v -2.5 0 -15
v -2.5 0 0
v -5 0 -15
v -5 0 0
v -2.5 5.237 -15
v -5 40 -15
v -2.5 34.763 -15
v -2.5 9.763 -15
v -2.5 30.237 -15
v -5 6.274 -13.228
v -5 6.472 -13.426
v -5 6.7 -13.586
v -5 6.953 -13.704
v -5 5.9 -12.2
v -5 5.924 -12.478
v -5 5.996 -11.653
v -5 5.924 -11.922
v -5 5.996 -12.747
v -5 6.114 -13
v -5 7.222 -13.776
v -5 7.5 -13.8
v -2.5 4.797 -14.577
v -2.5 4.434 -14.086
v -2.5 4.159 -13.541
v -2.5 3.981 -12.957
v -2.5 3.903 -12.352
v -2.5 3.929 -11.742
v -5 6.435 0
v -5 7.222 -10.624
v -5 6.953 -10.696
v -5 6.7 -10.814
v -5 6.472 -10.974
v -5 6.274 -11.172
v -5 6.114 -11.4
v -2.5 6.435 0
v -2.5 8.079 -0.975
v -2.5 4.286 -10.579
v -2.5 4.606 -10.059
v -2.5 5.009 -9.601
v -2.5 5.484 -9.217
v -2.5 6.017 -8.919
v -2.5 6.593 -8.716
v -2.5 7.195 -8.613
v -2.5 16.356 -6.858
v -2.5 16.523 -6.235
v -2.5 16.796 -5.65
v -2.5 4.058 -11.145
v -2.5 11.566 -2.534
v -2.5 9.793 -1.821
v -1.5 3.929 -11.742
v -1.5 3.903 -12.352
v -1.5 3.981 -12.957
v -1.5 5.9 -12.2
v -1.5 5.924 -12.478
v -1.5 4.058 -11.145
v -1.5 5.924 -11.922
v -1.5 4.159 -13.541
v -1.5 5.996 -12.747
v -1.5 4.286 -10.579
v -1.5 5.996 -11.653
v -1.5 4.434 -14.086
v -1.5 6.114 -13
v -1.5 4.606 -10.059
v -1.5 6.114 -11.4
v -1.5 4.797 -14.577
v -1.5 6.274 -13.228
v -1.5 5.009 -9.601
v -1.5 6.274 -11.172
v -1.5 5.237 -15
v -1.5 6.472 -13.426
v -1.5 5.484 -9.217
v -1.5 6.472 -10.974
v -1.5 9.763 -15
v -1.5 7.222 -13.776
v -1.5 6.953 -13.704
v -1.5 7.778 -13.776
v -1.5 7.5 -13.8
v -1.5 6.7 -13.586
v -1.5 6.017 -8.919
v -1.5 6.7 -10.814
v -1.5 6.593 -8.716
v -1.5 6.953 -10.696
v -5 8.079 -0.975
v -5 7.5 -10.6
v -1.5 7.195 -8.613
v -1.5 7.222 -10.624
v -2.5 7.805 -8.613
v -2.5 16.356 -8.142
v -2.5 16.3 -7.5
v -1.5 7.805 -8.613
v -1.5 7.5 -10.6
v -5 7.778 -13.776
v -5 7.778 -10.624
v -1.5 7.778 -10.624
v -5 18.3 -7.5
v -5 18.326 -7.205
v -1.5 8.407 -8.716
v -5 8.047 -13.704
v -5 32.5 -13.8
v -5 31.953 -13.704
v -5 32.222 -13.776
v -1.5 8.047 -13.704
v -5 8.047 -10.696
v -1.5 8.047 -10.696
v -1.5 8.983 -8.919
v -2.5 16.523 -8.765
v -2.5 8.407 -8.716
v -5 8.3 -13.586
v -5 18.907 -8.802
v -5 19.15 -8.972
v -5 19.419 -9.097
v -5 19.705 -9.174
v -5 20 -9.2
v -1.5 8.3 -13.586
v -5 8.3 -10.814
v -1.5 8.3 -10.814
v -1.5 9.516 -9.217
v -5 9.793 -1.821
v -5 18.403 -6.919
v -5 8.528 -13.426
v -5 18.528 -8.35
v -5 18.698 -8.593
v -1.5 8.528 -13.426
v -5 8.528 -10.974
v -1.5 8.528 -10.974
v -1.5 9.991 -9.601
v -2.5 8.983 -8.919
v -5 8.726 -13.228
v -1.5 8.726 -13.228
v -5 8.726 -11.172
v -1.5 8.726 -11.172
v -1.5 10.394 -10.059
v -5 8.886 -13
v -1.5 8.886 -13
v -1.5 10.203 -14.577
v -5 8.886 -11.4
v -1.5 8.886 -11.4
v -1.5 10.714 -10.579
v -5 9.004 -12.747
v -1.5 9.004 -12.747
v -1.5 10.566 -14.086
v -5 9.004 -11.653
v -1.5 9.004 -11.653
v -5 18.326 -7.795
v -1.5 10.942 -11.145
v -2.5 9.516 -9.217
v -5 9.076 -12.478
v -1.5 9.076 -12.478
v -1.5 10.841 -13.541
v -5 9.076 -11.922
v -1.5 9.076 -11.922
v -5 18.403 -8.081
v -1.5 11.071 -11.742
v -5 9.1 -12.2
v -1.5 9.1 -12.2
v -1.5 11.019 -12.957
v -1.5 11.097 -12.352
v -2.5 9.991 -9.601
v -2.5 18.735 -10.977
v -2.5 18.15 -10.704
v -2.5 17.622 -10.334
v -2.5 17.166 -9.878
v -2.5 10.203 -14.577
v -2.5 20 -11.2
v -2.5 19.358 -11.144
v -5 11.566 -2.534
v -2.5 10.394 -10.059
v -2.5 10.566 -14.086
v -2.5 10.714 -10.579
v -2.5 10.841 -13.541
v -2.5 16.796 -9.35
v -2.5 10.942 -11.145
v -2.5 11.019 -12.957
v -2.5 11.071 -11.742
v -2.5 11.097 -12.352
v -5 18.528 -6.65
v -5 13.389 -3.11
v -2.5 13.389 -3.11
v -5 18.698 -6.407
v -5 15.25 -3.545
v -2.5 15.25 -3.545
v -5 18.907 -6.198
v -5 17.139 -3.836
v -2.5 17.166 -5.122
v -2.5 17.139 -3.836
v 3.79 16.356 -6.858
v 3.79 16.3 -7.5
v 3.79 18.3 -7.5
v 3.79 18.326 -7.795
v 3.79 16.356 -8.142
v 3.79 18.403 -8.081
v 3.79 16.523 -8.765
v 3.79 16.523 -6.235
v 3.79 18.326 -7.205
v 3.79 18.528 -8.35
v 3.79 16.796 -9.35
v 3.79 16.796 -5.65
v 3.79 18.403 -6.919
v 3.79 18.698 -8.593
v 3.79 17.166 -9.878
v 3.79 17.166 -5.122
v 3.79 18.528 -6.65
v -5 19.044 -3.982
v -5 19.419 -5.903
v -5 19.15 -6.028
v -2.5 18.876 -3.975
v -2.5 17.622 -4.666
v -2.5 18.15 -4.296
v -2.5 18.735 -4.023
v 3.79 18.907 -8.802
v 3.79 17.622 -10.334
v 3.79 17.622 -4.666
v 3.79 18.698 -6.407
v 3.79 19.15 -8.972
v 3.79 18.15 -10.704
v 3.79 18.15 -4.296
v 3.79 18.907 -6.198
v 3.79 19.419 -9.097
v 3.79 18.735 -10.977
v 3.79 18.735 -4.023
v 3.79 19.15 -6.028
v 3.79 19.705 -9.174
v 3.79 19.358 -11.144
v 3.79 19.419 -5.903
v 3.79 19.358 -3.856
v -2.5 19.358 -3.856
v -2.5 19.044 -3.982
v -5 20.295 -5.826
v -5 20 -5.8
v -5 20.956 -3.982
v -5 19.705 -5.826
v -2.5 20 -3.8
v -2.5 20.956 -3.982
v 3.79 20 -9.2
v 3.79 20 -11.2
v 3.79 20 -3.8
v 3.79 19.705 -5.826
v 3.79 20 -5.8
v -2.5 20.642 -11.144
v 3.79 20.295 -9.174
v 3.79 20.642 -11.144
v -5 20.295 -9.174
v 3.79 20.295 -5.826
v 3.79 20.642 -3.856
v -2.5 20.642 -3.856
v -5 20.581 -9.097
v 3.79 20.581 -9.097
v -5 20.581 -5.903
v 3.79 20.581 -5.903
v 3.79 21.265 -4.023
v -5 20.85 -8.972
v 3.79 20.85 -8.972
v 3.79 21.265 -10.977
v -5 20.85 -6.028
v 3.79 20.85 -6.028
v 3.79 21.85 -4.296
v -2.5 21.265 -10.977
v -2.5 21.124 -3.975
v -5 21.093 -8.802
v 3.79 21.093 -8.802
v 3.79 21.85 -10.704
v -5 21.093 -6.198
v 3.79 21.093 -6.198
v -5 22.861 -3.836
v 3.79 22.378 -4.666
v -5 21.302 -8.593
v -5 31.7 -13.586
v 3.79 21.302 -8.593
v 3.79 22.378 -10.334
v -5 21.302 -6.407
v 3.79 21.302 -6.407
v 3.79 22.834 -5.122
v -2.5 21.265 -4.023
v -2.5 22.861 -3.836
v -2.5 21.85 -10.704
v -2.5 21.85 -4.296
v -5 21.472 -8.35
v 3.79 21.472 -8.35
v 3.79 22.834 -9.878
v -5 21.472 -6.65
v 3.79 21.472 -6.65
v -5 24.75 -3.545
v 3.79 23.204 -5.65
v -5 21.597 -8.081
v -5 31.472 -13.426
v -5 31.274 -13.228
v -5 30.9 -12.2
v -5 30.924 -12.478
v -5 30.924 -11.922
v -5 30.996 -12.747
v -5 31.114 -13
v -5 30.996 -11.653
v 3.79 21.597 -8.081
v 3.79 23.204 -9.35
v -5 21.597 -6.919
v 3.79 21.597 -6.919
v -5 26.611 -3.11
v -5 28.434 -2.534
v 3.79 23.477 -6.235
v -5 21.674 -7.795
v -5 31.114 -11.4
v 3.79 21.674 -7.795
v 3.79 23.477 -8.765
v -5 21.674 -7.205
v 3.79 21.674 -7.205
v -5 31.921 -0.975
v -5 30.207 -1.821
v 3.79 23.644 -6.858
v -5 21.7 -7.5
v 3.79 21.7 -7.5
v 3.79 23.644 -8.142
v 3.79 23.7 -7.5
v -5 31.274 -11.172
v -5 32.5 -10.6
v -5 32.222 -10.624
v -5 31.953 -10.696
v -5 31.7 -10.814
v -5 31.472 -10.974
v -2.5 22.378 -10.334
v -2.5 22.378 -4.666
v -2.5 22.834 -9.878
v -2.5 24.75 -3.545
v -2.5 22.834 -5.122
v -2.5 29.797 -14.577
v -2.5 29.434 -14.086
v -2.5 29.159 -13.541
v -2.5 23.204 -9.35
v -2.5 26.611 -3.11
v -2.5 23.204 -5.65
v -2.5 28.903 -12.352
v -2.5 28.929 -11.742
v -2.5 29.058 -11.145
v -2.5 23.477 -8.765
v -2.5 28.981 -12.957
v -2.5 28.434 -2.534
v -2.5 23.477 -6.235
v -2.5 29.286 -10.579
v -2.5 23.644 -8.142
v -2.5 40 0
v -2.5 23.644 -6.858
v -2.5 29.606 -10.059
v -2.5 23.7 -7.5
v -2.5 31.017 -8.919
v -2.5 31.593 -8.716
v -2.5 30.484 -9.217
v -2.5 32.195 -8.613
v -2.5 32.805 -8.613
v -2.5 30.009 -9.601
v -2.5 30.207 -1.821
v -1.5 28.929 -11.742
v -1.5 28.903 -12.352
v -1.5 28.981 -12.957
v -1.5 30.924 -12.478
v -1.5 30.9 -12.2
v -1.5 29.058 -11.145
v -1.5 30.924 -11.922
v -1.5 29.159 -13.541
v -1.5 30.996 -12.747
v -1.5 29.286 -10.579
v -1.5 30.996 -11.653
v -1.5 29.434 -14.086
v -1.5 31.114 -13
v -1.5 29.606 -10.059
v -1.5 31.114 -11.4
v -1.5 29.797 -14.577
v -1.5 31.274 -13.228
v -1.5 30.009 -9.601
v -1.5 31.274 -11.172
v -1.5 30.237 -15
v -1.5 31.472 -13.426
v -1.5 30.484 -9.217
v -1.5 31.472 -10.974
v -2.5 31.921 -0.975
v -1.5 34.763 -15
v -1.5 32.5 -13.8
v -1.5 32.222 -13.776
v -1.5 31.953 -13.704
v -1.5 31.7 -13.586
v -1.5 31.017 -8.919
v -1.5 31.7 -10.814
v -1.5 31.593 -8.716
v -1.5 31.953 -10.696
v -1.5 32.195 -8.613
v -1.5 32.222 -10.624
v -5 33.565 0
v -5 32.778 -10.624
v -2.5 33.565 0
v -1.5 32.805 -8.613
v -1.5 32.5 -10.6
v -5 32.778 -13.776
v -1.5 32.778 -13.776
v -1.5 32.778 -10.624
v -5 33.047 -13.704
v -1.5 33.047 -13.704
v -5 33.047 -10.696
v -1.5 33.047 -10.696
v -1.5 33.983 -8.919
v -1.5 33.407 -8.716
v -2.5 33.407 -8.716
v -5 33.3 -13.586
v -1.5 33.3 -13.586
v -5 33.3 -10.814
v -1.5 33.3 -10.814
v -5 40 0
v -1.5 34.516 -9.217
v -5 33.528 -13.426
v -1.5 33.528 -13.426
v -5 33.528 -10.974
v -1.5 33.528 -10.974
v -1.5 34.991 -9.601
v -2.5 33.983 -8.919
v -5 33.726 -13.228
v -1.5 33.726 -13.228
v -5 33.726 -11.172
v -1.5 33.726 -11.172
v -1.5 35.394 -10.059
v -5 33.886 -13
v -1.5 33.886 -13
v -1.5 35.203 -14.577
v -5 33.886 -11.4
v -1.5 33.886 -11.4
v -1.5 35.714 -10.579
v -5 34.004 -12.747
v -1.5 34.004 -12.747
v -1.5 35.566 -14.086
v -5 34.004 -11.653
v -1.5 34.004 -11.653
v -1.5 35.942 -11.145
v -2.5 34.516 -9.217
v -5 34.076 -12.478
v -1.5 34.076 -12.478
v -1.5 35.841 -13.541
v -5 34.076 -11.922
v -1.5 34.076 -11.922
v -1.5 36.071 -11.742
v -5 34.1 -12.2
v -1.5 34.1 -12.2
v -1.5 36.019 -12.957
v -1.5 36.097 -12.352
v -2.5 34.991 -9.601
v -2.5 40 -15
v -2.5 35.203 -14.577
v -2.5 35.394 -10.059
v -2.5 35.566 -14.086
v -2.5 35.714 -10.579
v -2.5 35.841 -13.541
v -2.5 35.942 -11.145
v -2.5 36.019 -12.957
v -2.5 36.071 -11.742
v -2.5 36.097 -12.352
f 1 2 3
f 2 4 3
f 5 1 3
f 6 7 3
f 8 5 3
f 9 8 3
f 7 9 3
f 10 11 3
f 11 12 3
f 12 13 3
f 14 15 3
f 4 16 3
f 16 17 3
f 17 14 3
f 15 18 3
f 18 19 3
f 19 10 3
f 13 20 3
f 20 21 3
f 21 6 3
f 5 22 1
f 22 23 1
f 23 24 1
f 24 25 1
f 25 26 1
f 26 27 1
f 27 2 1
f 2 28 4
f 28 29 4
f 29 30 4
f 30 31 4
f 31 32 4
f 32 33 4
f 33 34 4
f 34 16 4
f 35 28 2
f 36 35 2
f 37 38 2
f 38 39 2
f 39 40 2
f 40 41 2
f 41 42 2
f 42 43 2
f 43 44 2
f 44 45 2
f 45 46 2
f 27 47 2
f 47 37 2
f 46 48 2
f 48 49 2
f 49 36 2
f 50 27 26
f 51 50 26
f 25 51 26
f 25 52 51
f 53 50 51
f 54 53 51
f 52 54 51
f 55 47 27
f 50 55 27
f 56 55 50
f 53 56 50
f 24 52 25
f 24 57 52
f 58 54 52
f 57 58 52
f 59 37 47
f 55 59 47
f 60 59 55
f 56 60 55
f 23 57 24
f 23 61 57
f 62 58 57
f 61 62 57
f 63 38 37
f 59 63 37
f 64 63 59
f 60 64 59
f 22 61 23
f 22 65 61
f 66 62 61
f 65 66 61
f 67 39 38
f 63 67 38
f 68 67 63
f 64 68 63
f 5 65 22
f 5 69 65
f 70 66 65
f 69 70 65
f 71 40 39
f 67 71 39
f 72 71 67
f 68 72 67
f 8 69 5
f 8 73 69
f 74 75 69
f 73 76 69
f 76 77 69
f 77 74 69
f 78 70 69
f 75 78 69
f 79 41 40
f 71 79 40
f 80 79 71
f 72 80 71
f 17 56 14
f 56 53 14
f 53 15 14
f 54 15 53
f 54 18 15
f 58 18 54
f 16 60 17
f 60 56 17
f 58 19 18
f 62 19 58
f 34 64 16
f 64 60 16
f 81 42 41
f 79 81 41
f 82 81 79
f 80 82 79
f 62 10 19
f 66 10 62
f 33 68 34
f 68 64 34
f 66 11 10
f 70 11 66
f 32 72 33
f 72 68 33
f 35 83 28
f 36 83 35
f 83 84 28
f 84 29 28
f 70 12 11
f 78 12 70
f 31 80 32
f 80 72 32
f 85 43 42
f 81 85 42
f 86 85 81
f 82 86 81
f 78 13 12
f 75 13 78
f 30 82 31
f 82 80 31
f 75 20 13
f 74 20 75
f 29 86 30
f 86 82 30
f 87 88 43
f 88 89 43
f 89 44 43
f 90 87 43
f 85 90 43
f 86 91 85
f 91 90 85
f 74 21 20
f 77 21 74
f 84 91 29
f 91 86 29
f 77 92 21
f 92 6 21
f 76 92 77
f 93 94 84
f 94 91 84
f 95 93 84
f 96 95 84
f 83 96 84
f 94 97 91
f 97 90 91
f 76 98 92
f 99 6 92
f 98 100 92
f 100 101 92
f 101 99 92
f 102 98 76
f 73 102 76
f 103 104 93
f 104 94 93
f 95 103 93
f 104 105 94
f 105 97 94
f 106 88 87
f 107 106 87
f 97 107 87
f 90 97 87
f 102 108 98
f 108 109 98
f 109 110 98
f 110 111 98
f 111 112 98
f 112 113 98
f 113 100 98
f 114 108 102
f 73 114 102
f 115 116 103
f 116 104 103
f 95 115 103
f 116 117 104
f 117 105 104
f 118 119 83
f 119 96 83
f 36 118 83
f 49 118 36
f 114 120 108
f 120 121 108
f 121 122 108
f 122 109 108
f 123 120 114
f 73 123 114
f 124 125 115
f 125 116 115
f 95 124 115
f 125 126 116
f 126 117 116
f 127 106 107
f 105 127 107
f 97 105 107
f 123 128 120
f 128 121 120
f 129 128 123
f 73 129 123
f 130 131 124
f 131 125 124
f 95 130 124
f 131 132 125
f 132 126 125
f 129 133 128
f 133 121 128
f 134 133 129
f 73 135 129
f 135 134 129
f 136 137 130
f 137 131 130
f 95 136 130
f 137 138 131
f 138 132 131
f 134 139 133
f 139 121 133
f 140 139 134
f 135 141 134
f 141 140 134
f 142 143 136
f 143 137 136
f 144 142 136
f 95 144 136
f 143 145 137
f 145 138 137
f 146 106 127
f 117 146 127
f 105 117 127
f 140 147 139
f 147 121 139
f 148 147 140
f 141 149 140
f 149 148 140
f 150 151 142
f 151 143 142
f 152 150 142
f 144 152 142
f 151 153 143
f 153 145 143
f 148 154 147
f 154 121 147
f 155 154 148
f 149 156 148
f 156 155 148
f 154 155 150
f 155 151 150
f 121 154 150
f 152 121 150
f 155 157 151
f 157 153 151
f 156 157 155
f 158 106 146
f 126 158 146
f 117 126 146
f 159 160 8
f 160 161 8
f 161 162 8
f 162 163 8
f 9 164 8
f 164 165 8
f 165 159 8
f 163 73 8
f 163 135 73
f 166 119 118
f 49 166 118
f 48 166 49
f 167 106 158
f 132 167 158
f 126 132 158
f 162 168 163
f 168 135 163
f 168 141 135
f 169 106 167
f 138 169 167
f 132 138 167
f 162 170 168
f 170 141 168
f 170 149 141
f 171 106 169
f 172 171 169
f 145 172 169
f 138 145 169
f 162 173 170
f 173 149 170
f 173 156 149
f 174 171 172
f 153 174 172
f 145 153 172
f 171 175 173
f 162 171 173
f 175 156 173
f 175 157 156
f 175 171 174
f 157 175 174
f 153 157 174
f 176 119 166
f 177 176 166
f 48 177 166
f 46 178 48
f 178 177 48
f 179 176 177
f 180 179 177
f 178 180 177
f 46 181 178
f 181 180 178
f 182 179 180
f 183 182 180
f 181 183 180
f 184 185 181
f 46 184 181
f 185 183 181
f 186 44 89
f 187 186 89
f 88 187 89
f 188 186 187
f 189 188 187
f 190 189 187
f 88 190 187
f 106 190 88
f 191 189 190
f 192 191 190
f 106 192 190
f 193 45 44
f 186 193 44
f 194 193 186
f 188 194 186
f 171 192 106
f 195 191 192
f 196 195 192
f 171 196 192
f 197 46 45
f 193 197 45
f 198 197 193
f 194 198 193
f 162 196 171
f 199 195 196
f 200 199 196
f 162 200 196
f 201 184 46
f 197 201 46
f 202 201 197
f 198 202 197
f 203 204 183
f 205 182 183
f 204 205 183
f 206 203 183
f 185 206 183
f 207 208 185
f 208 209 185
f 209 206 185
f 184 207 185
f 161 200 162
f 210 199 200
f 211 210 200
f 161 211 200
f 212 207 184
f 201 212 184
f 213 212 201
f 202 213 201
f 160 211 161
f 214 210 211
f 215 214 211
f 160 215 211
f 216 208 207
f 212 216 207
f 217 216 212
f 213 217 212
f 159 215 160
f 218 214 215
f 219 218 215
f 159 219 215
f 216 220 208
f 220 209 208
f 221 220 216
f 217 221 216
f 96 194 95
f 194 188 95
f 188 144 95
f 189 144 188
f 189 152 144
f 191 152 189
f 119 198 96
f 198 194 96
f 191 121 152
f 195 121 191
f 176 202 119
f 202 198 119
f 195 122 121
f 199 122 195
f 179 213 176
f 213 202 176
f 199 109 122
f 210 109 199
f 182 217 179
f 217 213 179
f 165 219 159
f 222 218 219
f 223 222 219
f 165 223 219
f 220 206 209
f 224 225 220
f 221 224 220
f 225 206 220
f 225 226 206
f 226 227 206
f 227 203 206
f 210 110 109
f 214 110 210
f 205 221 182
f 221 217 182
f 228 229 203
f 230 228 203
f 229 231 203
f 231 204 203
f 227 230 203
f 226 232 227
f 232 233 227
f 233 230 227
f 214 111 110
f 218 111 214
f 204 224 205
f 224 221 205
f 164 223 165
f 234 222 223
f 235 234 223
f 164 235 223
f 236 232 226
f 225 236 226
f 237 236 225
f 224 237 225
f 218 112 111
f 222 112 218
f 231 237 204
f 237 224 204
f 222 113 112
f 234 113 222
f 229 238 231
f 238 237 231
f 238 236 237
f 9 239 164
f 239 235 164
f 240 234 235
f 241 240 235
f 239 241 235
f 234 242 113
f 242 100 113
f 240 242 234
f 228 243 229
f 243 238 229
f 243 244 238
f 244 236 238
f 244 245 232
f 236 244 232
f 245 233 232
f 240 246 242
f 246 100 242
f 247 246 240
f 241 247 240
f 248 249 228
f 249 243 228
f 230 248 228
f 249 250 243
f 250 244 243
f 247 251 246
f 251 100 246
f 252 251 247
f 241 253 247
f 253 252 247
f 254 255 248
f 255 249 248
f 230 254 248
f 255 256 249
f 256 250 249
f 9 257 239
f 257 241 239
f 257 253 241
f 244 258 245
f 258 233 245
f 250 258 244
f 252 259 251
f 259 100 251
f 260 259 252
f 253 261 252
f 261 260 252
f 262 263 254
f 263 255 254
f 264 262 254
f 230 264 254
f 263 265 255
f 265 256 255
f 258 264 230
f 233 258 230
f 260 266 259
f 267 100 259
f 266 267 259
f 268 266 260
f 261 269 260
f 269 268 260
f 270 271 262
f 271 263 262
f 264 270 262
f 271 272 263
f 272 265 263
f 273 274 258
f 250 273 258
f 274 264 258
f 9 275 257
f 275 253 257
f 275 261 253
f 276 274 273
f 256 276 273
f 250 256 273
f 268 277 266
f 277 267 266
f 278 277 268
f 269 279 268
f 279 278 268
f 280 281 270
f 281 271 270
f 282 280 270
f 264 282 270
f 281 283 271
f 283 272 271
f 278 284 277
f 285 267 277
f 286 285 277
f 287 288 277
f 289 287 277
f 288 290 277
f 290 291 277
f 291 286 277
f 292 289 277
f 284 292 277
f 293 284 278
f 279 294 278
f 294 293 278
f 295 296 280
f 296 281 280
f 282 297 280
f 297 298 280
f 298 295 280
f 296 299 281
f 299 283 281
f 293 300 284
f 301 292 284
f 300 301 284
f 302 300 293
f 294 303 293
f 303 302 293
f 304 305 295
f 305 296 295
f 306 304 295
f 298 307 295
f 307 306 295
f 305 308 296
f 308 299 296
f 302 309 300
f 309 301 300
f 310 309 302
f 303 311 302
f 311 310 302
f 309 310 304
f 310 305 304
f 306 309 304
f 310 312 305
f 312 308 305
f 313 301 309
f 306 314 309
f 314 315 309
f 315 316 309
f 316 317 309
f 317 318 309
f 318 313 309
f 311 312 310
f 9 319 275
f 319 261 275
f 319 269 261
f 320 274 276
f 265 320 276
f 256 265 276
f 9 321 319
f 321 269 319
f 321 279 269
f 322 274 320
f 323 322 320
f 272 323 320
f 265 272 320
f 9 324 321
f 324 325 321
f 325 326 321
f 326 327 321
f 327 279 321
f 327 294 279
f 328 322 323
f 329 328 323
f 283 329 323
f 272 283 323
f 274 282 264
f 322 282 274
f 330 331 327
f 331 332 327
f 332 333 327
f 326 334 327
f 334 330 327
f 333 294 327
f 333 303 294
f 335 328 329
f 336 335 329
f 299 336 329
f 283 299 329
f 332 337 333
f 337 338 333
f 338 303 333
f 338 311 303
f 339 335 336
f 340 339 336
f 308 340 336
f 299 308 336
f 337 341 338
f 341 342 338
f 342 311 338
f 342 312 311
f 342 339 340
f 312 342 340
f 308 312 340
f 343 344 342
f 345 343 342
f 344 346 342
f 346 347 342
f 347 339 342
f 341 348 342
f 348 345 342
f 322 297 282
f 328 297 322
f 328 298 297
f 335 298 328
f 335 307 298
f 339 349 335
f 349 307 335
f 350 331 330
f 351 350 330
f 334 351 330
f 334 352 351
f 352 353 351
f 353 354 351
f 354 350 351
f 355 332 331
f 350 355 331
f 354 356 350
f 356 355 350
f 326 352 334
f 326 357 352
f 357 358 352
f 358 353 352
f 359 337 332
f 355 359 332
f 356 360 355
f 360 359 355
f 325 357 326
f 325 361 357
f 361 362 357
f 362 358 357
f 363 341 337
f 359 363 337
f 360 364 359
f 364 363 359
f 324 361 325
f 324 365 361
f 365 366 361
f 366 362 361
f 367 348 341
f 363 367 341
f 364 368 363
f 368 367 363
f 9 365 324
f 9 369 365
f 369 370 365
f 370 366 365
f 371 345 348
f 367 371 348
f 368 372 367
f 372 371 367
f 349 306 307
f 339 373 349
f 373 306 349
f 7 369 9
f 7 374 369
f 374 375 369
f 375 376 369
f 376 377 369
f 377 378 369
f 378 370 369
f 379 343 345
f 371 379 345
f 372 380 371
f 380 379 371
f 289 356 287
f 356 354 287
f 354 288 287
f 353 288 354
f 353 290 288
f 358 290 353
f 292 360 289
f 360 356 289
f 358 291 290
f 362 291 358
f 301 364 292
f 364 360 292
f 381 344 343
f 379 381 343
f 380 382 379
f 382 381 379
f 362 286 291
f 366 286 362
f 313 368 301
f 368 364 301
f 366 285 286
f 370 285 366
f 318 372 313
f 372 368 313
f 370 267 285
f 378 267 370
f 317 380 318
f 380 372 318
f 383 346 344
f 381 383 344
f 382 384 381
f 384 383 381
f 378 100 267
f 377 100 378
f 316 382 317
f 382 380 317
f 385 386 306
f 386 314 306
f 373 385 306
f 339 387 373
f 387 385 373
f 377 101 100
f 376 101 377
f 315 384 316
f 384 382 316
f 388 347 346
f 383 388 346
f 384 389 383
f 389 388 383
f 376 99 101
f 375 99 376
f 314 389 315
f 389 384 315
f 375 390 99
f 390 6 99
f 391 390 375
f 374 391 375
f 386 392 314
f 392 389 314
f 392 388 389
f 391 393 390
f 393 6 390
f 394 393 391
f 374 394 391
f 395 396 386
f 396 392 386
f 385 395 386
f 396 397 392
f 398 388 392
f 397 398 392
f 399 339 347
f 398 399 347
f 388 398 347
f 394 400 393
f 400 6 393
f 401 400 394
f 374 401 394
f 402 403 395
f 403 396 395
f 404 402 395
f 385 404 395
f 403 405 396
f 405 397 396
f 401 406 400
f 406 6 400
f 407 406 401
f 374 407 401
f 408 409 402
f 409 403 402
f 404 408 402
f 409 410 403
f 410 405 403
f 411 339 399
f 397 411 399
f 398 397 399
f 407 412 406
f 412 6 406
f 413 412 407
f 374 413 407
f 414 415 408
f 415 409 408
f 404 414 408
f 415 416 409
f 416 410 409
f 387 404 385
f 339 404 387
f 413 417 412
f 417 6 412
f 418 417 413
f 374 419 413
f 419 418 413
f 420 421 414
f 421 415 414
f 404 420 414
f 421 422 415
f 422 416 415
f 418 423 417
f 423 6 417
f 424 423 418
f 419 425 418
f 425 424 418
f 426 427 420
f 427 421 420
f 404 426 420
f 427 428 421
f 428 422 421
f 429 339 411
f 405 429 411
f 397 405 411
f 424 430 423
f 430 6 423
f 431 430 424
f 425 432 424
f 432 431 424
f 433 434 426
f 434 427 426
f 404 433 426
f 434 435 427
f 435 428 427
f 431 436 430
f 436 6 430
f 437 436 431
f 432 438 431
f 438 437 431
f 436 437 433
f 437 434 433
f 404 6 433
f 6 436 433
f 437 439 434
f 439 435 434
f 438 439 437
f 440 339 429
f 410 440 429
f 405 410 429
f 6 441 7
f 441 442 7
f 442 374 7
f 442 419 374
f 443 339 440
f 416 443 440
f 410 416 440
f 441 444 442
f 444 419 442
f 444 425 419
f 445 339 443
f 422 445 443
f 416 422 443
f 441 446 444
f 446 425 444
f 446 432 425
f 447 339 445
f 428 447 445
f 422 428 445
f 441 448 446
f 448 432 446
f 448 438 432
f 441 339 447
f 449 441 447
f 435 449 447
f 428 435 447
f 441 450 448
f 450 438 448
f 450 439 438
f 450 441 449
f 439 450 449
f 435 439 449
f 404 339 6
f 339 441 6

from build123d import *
from build123d.topology import SkipClean

# Parameters (mm, degrees)
SKETCH1_R           = 1.6
BOSS_EXTRUDE1_DEPTH = 2.5
BOSS_EXTRUDE2_START = -2.5
SKETCH1_3_W         = 15
SKETCH1_3_H         = 40
SKETCH1_3_R         = 1.7
SKETCH1_3_R_2       = 1.6
BOSS_EXTRUDE2_DEPTH = 2.5
SKETCH3_R           = 3.7
SKETCH3_R_2         = 1.7
EXTRUDE_THIN2_DEPTH = 6.29
SKETCH4_W           = 15
SKETCH4_H           = 40
CUT_EXTRUDE1_DEPTH  = 2.5
CUT_EXTRUDE2_DEPTH  = 2.5
SKETCH2_R           = 1.6
BOSS_EXTRUDE3_DEPTH = 1


with BuildPart() as part:
    # Sketch1 → Boss-Extrude1 (new body)
    # profile 1 of 8: a face of its own
    with BuildSketch(Plane(origin=(0, 0, 0), x_dir=(0, 0, -1), z_dir=(1, 0, 0))):
        with BuildLine():
            Line((7.5, 21.7), (7.5, 40))
            Line((7.5, 40), (0, 40))
            Line((0, 40), (0, 0))
            Line((0, 0), (7.5, 0))
            Line((7.5, 0), (7.5, 6.4))
            ThreePointArc((7.5, 6.4), (5.9, 8), (7.5, 9.6))
            Line((7.5, 9.6), (7.5, 18.3))
            ThreePointArc((7.5, 18.3), (5.8, 20), (7.5, 21.7))
        make_face()
    # profile 2 of 8: a face of its own
    with BuildSketch(Plane(origin=(0, 0, 0), x_dir=(0, 0, -1), z_dir=(1, 0, 0))):
        with BuildLine():
            Line((15, 40), (7.5, 40))
            Line((7.5, 40), (7.5, 21.7))
            ThreePointArc((7.5, 21.7), (8.702081528, 21.202081528), (9.2, 20))
            ThreePointArc((9.2, 20), (8.702081528, 18.797918472), (7.5, 18.3))
            Line((7.5, 18.3), (7.5, 9.6))
            ThreePointArc((7.5, 9.6), (8.63137085, 9.13137085), (9.1, 8))
            ThreePointArc((9.1, 8), (8.63137085, 6.86862915), (7.5, 6.4))
            Line((7.5, 6.4), (7.5, 0))
            Line((7.5, 0), (15, 0))
            Line((15, 0), (15, 5.883419246))
            Line((15, 5.883419246), (12.2, 4.266838493))
            Line((12.2, 4.266838493), (9.4, 5.883419246))
            Line((9.4, 5.883419246), (9.4, 9.116580754))
            Line((9.4, 9.116580754), (12.2, 10.733161507))
            Line((12.2, 10.733161507), (15, 9.116580754))
            Line((15, 9.116580754), (15, 30.883419246))
            Line((15, 30.883419246), (12.2, 29.266838493))
            Line((12.2, 29.266838493), (9.4, 30.883419246))
            Line((9.4, 30.883419246), (9.4, 34.116580754))
            Line((9.4, 34.116580754), (12.2, 35.733161507))
            Line((12.2, 35.733161507), (15, 34.116580754))
            Line((15, 34.116580754), (15, 40))
        make_face()
    # profile 3 of 8: a face of its own
    with BuildSketch(Plane(origin=(0, 0, 0), x_dir=(0, 0, -1), z_dir=(1, 0, 0))):
        with BuildLine():
            ThreePointArc((9.1, 8), (8.63137085, 9.13137085), (7.5, 9.6))
            Line((7.5, 9.6), (7.5, 6.4))
            ThreePointArc((7.5, 6.4), (8.63137085, 6.86862915), (9.1, 8))
        make_face()
    # profile 4 of 8: a face of its own
    with BuildSketch(Plane(origin=(0, 0, 0), x_dir=(0, 0, -1), z_dir=(1, 0, 0))):
        with BuildLine():
            Line((7.5, 6.4), (7.5, 9.6))
            ThreePointArc((7.5, 9.6), (5.9, 8), (7.5, 6.4))
        make_face()
    # profile 5 of 8: a face of its own
    with BuildSketch(Plane(origin=(0, 0, 0), x_dir=(0, 0, -1), z_dir=(1, 0, 0))):
        with BuildLine():
            ThreePointArc((9.1, 8), (8.63137085, 9.13137085), (7.5, 9.6))
            Line((7.5, 9.6), (7.5, 6.4))
            ThreePointArc((7.5, 6.4), (8.63137085, 6.86862915), (9.1, 8))
        make_face()
    # profile 6 of 8: a face of its own
    with BuildSketch(Plane(origin=(0, 0, 0), x_dir=(0, 0, -1), z_dir=(1, 0, 0))):
        with BuildLine():
            Line((7.5, 6.4), (7.5, 9.6))
            ThreePointArc((7.5, 9.6), (5.9, 8), (7.5, 6.4))
        make_face()
    # profile 7 of 8: a face of its own
    with BuildSketch(Plane(origin=(0, 0, 0), x_dir=(0, 0, -1), z_dir=(1, 0, 0))):
        Polygon((15, 5.883419246), (15, 9.116580754), (12.2, 10.733161507), (9.4, 9.116580754), (9.4, 5.883419246), (12.2, 4.266838493), align=None)
        with Locations((12.2, 7.5)):
            Circle(SKETCH1_R, mode=Mode.SUBTRACT)
    # profile 8 of 8: a face of its own
    with BuildSketch(Plane(origin=(0, 0, 0), x_dir=(0, 0, -1), z_dir=(1, 0, 0))):
        Polygon((15, 30.883419246), (15, 34.116580754), (12.2, 35.733161507), (9.4, 34.116580754), (9.4, 30.883419246), (12.2, 29.266838493), align=None)
        with Locations((12.2, 32.5)):
            Circle(SKETCH1_R, mode=Mode.SUBTRACT)
    extrude(amount=BOSS_EXTRUDE1_DEPTH)

    # Sketch1<3> → Boss-Extrude2 (add)
    with SkipClean():  # the faces are left unmerged after this step: merging them gives an invalid solid
        with BuildSketch(Plane(origin=(0, 0, 0), x_dir=(0, 0, -1), z_dir=(1, 0, 0)).offset(BOSS_EXTRUDE2_START)):
            with Locations((7.5, 20)):
                Rectangle(SKETCH1_3_W, SKETCH1_3_H)
            with Locations((7.5, 20)):
                Circle(SKETCH1_3_R, mode=Mode.SUBTRACT)
            with Locations((12.2, 32.5)):
                Circle(SKETCH1_3_R_2, mode=Mode.SUBTRACT)
            with Locations((12.2, 7.5)):
                Circle(SKETCH1_3_R_2, mode=Mode.SUBTRACT)
        extrude(amount=BOSS_EXTRUDE2_DEPTH)


with BuildPart() as part_1:
    # Body-Move/Copy1: moved
    add(part.part.moved(Location((-5, 0, 0))))

    # Sketch3 → Extrude-Thin2 (add)
    with SkipClean():  # the faces are left unmerged after this step: merging them gives an invalid solid
        with BuildSketch(Plane(origin=(-2.5, 0, 0), x_dir=(0, 0, -1), z_dir=(1, 0, 0))):
            with Locations((7.5, 20)):
                Circle(SKETCH3_R)
            with Locations((7.5, 20)):
                Circle(SKETCH3_R_2, mode=Mode.SUBTRACT)
        extrude(amount=EXTRUDE_THIN2_DEPTH)
    add(part_1.part.scale(1), mode=Mode.REPLACE)  # the faces are merged on a copy

    # Sketch4 → Cut-Extrude1 (cut)
    with BuildSketch(Plane.ZY.offset(7.5)):
        with Locations((-7.5, 20)):
            Rectangle(SKETCH4_W, SKETCH4_H)
    extrude(amount=-CUT_EXTRUDE1_DEPTH, mode=Mode.SUBTRACT)

    # Sketch5 → Cut-Extrude2 (cut)
    with BuildSketch(Plane.ZY.offset(5)):
        with BuildLine():
            ThreePointArc((0, 33.564659966), (-2.979157617, 27.071067812), (-4, 20))
            Line((-4, 20), (0, 20))
            Line((0, 20), (0, 33.564659966))
        make_face()
        with BuildLine():
            Line((0, 20), (-4, 20))
            ThreePointArc((-4, 20), (-2.979157617, 12.928932188), (0, 6.435340034))
            Line((0, 6.435340034), (0, 20))
        make_face()
        with BuildLine():
            Line((0, 33.564659966), (0, 20))
            Line((0, 20), (0, 6.435340034))
            ThreePointArc((0, 6.435340034), (28.071067812, -3.979157617), (46, 20))
            ThreePointArc((46, 20), (28.071067812, 43.979157617), (0, 33.564659966))
        make_face()
    extrude(amount=-CUT_EXTRUDE2_DEPTH, mode=Mode.SUBTRACT)

    # Sketch2 → Boss-Extrude3 (add)
    # profile 1 of 2: a face of its own
    with BuildSketch(Plane.ZY.offset(2.5)):
        with BuildLine():
            Line((-15, 9.7627417), (-15, 5.2372583))
            ThreePointArc((-15, 5.2372583), (-11, 4.10588745), (-8.6, 7.5))
            ThreePointArc((-8.6, 7.5), (-11, 10.89411255), (-15, 9.7627417))
        make_face()
        with Locations((-12.2, 7.5)):
            Circle(SKETCH2_R, mode=Mode.SUBTRACT)
    # profile 2 of 2: a face of its own
    with BuildSketch(Plane.ZY.offset(2.5)):
        with BuildLine():
            Line((-15, 34.7627417), (-15, 30.2372583))
            ThreePointArc((-15, 30.2372583), (-11, 29.10588745), (-8.6, 32.5))
            ThreePointArc((-8.6, 32.5), (-11, 35.89411255), (-15, 34.7627417))
        make_face()
        with Locations((-12.2, 32.5)):
            Circle(SKETCH2_R, mode=Mode.SUBTRACT)
    extrude(amount=-BOSS_EXTRUDE3_DEPTH)


solid = part_1.part
